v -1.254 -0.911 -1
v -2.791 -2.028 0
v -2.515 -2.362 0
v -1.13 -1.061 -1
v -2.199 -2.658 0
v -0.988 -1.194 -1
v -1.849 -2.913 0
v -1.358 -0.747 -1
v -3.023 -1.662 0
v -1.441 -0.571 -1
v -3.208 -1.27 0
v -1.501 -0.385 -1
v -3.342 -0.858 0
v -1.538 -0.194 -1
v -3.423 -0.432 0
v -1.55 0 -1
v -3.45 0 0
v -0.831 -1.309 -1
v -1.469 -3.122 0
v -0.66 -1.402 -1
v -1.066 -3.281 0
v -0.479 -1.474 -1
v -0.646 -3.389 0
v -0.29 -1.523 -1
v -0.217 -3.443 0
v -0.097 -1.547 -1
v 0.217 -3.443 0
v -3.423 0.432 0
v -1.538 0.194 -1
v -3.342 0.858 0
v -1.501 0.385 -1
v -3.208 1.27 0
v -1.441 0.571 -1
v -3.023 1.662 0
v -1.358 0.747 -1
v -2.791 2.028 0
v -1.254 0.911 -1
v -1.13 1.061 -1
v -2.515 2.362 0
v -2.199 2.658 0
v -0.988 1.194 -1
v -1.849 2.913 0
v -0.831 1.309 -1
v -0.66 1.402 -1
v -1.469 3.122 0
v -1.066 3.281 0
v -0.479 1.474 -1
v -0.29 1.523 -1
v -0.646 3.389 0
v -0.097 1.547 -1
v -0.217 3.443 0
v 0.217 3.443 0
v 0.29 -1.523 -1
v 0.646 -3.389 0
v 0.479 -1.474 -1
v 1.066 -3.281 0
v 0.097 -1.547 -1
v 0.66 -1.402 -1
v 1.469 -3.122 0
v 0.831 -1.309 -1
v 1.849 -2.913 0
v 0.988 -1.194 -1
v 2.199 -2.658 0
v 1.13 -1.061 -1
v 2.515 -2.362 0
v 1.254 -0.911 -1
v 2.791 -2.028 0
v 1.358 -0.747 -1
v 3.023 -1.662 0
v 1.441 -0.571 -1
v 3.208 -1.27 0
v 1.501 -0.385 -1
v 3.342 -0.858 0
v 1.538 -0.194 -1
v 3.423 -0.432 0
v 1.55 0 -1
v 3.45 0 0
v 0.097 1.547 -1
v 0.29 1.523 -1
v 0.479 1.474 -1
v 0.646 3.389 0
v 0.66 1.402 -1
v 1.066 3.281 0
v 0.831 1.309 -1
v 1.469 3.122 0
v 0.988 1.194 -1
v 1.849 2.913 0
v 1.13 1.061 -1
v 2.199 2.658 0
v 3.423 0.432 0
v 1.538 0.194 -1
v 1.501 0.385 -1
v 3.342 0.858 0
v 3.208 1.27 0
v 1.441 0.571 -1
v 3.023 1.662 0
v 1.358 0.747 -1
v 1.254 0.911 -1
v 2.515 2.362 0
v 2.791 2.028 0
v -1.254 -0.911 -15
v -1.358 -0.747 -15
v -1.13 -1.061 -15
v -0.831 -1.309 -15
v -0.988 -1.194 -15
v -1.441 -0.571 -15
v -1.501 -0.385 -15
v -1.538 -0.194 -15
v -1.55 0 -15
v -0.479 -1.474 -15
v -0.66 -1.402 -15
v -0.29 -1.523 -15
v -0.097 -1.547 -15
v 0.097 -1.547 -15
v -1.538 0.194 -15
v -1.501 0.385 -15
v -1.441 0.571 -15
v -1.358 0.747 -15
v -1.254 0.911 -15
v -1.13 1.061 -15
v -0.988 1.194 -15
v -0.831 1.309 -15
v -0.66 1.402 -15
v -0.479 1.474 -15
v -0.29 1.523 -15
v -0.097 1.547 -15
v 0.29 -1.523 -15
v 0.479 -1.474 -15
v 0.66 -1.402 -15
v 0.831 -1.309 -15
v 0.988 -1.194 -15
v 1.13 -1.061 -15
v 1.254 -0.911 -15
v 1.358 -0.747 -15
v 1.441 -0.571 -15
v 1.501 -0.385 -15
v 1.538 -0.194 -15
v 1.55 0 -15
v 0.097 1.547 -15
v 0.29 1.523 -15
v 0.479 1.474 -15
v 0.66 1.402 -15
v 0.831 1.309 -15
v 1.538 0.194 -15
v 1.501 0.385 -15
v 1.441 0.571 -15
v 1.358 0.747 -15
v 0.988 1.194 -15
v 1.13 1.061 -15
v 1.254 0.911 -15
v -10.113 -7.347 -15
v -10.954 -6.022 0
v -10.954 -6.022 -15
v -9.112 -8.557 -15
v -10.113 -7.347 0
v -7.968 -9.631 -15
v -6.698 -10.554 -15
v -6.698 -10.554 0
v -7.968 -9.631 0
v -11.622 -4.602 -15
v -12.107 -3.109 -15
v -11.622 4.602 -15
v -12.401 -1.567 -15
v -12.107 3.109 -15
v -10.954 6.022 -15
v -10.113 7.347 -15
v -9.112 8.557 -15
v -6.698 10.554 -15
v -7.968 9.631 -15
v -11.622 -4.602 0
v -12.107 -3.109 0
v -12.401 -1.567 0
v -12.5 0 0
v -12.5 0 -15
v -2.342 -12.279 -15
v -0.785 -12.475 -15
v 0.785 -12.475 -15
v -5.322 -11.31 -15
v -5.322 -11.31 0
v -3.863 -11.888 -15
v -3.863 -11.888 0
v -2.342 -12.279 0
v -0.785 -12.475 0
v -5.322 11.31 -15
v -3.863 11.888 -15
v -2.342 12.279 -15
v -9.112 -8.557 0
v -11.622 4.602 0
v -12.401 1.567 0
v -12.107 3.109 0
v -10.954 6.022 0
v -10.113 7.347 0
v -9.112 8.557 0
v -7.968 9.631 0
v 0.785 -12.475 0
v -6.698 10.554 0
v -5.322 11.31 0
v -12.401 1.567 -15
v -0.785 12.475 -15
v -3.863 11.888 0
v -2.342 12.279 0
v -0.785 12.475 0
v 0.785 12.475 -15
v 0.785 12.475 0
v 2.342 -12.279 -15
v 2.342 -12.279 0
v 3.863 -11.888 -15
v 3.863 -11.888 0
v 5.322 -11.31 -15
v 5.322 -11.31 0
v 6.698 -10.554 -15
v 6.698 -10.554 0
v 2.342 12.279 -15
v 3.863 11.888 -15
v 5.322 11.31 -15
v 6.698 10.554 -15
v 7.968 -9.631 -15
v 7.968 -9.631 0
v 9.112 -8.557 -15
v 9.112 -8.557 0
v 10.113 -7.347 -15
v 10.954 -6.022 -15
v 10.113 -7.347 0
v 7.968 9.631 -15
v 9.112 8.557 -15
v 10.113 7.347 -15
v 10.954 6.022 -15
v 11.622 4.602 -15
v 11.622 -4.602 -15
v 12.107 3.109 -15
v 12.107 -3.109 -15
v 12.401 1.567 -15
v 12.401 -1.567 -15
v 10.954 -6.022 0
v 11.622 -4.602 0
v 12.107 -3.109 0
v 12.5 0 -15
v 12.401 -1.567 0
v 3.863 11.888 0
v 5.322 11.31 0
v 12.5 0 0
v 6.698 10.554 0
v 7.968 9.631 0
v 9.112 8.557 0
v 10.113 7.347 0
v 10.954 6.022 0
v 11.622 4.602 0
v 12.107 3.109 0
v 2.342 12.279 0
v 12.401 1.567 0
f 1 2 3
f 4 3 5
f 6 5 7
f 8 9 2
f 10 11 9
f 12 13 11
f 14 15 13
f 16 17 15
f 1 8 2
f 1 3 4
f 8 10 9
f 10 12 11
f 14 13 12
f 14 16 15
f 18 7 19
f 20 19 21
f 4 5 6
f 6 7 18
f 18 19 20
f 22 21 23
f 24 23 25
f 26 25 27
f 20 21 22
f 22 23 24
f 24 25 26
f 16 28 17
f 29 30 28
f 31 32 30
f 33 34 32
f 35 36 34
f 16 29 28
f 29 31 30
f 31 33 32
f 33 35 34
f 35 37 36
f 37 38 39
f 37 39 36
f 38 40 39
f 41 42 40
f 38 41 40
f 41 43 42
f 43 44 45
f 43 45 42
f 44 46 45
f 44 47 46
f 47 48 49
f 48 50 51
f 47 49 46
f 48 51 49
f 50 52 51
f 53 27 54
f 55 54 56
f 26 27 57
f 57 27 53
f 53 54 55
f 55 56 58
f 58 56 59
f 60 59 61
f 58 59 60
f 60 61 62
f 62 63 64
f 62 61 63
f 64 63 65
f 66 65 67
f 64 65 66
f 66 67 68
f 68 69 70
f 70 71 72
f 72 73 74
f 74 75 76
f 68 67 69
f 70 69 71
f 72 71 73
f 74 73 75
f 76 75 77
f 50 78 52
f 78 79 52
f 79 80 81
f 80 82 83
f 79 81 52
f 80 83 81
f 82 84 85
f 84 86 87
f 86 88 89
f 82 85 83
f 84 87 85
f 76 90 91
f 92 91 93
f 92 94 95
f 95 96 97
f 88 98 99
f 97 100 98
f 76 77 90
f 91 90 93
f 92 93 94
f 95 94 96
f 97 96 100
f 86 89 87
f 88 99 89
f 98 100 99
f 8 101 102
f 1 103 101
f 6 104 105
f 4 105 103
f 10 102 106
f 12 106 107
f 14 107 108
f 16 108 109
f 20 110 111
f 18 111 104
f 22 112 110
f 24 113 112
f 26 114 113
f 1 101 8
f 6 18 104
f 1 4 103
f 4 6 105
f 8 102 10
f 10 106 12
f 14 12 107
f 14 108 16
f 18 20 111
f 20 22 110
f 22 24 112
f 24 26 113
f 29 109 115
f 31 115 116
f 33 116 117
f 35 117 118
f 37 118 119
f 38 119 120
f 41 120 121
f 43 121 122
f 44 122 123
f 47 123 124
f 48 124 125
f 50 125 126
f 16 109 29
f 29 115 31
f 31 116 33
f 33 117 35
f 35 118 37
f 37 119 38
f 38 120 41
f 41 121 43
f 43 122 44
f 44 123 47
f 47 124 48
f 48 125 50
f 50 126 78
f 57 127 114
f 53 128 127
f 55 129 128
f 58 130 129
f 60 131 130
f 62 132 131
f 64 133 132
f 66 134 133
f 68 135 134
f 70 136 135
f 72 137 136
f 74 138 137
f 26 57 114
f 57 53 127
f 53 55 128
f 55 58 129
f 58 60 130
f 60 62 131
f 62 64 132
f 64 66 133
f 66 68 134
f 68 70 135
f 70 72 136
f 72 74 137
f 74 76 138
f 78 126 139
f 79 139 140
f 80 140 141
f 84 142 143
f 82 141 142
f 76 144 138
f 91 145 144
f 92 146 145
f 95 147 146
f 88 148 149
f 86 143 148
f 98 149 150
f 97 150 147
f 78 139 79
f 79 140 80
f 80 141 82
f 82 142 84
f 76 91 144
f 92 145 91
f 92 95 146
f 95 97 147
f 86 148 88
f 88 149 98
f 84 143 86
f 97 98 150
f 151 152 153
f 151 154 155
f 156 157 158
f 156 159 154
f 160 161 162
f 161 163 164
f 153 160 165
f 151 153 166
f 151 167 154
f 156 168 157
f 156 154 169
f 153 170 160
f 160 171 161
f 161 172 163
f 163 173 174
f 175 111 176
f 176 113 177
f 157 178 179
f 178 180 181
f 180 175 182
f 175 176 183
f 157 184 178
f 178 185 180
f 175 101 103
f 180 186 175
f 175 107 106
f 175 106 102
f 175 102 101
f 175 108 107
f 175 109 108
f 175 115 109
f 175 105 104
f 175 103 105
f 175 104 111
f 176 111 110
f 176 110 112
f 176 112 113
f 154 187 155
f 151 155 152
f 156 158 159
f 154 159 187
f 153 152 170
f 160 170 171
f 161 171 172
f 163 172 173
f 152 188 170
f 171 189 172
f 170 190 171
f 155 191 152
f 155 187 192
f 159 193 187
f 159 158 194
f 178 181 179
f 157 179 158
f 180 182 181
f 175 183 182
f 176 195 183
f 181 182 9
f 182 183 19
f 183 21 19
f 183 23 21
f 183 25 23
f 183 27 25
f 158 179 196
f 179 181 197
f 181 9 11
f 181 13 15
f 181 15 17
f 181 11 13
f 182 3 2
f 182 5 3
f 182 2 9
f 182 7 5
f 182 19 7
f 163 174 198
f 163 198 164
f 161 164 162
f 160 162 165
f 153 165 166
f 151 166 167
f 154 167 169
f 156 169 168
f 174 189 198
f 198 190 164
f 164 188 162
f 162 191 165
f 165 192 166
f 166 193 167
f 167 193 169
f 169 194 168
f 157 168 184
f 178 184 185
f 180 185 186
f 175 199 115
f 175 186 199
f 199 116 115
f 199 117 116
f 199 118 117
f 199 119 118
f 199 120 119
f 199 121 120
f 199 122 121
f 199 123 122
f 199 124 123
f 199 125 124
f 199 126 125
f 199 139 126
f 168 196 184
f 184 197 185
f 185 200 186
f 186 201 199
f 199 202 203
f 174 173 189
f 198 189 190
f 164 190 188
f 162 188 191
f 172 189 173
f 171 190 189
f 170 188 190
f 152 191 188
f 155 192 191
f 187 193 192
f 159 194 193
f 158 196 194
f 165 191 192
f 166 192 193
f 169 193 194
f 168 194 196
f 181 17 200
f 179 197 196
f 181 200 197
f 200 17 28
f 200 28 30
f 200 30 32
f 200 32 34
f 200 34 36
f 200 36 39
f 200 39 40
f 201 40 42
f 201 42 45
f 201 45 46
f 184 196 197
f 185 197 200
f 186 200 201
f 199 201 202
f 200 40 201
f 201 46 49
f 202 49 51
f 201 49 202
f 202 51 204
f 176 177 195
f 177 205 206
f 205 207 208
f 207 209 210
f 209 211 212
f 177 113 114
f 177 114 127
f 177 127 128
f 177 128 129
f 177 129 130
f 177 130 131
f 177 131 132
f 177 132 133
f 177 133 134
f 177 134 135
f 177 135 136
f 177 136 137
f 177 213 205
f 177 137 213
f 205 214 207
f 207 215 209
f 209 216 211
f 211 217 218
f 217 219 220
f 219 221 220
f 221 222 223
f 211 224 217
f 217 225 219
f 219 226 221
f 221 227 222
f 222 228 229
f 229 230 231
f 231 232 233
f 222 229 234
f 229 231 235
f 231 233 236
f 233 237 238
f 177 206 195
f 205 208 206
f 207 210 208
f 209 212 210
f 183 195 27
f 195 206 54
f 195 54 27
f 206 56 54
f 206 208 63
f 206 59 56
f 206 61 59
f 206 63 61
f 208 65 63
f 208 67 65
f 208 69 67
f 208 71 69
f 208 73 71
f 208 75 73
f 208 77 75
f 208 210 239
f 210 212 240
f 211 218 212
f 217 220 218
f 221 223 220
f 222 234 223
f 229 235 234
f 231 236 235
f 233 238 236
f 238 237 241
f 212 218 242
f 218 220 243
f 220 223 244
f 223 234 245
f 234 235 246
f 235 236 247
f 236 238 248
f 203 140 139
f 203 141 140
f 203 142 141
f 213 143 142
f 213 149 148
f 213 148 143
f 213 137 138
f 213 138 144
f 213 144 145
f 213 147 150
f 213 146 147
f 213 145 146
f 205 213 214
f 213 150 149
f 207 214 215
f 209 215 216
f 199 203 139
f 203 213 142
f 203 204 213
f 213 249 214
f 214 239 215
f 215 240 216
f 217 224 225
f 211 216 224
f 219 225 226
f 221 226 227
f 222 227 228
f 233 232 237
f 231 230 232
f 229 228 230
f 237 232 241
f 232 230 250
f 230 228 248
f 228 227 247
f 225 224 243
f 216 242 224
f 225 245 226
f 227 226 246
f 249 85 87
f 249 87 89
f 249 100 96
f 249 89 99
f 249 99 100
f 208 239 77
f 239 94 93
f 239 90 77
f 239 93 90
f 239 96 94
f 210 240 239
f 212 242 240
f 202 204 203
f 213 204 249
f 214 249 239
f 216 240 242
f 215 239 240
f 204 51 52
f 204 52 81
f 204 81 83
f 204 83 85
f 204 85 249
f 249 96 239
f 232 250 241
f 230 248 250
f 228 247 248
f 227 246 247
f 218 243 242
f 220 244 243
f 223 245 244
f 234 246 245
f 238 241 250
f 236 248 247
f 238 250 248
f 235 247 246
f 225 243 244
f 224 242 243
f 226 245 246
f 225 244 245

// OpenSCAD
$fn = 50;

difference() {
	union() {
		translate(v = [0, 0, -15.0]) {
			cylinder(h = 15, r = 12.5);
		}
	}
	union() {
		translate(v = [0, 0, 0]) {
			rotate(a = [0, 0, 0]) {
				difference() {
					union() {
						translate(v = [0, 0, -18.0]) {
							cylinder(h = 18, r = 1.25);
						}
						translate(v = [0, 0, -1.0]) {
							cylinder(h = 1.0, r1 = 1.55, r2 = 3.45);
						}
						translate(v = [0, 0, -18.0]) {
							cylinder(h = 18, r = 1.55);
						}
						translate(v = [0, 0, -18.0]) {
							cylinder(h = 18, r = 1.25);
						}
					}
					union();
				}
			}
		}
	}
}
